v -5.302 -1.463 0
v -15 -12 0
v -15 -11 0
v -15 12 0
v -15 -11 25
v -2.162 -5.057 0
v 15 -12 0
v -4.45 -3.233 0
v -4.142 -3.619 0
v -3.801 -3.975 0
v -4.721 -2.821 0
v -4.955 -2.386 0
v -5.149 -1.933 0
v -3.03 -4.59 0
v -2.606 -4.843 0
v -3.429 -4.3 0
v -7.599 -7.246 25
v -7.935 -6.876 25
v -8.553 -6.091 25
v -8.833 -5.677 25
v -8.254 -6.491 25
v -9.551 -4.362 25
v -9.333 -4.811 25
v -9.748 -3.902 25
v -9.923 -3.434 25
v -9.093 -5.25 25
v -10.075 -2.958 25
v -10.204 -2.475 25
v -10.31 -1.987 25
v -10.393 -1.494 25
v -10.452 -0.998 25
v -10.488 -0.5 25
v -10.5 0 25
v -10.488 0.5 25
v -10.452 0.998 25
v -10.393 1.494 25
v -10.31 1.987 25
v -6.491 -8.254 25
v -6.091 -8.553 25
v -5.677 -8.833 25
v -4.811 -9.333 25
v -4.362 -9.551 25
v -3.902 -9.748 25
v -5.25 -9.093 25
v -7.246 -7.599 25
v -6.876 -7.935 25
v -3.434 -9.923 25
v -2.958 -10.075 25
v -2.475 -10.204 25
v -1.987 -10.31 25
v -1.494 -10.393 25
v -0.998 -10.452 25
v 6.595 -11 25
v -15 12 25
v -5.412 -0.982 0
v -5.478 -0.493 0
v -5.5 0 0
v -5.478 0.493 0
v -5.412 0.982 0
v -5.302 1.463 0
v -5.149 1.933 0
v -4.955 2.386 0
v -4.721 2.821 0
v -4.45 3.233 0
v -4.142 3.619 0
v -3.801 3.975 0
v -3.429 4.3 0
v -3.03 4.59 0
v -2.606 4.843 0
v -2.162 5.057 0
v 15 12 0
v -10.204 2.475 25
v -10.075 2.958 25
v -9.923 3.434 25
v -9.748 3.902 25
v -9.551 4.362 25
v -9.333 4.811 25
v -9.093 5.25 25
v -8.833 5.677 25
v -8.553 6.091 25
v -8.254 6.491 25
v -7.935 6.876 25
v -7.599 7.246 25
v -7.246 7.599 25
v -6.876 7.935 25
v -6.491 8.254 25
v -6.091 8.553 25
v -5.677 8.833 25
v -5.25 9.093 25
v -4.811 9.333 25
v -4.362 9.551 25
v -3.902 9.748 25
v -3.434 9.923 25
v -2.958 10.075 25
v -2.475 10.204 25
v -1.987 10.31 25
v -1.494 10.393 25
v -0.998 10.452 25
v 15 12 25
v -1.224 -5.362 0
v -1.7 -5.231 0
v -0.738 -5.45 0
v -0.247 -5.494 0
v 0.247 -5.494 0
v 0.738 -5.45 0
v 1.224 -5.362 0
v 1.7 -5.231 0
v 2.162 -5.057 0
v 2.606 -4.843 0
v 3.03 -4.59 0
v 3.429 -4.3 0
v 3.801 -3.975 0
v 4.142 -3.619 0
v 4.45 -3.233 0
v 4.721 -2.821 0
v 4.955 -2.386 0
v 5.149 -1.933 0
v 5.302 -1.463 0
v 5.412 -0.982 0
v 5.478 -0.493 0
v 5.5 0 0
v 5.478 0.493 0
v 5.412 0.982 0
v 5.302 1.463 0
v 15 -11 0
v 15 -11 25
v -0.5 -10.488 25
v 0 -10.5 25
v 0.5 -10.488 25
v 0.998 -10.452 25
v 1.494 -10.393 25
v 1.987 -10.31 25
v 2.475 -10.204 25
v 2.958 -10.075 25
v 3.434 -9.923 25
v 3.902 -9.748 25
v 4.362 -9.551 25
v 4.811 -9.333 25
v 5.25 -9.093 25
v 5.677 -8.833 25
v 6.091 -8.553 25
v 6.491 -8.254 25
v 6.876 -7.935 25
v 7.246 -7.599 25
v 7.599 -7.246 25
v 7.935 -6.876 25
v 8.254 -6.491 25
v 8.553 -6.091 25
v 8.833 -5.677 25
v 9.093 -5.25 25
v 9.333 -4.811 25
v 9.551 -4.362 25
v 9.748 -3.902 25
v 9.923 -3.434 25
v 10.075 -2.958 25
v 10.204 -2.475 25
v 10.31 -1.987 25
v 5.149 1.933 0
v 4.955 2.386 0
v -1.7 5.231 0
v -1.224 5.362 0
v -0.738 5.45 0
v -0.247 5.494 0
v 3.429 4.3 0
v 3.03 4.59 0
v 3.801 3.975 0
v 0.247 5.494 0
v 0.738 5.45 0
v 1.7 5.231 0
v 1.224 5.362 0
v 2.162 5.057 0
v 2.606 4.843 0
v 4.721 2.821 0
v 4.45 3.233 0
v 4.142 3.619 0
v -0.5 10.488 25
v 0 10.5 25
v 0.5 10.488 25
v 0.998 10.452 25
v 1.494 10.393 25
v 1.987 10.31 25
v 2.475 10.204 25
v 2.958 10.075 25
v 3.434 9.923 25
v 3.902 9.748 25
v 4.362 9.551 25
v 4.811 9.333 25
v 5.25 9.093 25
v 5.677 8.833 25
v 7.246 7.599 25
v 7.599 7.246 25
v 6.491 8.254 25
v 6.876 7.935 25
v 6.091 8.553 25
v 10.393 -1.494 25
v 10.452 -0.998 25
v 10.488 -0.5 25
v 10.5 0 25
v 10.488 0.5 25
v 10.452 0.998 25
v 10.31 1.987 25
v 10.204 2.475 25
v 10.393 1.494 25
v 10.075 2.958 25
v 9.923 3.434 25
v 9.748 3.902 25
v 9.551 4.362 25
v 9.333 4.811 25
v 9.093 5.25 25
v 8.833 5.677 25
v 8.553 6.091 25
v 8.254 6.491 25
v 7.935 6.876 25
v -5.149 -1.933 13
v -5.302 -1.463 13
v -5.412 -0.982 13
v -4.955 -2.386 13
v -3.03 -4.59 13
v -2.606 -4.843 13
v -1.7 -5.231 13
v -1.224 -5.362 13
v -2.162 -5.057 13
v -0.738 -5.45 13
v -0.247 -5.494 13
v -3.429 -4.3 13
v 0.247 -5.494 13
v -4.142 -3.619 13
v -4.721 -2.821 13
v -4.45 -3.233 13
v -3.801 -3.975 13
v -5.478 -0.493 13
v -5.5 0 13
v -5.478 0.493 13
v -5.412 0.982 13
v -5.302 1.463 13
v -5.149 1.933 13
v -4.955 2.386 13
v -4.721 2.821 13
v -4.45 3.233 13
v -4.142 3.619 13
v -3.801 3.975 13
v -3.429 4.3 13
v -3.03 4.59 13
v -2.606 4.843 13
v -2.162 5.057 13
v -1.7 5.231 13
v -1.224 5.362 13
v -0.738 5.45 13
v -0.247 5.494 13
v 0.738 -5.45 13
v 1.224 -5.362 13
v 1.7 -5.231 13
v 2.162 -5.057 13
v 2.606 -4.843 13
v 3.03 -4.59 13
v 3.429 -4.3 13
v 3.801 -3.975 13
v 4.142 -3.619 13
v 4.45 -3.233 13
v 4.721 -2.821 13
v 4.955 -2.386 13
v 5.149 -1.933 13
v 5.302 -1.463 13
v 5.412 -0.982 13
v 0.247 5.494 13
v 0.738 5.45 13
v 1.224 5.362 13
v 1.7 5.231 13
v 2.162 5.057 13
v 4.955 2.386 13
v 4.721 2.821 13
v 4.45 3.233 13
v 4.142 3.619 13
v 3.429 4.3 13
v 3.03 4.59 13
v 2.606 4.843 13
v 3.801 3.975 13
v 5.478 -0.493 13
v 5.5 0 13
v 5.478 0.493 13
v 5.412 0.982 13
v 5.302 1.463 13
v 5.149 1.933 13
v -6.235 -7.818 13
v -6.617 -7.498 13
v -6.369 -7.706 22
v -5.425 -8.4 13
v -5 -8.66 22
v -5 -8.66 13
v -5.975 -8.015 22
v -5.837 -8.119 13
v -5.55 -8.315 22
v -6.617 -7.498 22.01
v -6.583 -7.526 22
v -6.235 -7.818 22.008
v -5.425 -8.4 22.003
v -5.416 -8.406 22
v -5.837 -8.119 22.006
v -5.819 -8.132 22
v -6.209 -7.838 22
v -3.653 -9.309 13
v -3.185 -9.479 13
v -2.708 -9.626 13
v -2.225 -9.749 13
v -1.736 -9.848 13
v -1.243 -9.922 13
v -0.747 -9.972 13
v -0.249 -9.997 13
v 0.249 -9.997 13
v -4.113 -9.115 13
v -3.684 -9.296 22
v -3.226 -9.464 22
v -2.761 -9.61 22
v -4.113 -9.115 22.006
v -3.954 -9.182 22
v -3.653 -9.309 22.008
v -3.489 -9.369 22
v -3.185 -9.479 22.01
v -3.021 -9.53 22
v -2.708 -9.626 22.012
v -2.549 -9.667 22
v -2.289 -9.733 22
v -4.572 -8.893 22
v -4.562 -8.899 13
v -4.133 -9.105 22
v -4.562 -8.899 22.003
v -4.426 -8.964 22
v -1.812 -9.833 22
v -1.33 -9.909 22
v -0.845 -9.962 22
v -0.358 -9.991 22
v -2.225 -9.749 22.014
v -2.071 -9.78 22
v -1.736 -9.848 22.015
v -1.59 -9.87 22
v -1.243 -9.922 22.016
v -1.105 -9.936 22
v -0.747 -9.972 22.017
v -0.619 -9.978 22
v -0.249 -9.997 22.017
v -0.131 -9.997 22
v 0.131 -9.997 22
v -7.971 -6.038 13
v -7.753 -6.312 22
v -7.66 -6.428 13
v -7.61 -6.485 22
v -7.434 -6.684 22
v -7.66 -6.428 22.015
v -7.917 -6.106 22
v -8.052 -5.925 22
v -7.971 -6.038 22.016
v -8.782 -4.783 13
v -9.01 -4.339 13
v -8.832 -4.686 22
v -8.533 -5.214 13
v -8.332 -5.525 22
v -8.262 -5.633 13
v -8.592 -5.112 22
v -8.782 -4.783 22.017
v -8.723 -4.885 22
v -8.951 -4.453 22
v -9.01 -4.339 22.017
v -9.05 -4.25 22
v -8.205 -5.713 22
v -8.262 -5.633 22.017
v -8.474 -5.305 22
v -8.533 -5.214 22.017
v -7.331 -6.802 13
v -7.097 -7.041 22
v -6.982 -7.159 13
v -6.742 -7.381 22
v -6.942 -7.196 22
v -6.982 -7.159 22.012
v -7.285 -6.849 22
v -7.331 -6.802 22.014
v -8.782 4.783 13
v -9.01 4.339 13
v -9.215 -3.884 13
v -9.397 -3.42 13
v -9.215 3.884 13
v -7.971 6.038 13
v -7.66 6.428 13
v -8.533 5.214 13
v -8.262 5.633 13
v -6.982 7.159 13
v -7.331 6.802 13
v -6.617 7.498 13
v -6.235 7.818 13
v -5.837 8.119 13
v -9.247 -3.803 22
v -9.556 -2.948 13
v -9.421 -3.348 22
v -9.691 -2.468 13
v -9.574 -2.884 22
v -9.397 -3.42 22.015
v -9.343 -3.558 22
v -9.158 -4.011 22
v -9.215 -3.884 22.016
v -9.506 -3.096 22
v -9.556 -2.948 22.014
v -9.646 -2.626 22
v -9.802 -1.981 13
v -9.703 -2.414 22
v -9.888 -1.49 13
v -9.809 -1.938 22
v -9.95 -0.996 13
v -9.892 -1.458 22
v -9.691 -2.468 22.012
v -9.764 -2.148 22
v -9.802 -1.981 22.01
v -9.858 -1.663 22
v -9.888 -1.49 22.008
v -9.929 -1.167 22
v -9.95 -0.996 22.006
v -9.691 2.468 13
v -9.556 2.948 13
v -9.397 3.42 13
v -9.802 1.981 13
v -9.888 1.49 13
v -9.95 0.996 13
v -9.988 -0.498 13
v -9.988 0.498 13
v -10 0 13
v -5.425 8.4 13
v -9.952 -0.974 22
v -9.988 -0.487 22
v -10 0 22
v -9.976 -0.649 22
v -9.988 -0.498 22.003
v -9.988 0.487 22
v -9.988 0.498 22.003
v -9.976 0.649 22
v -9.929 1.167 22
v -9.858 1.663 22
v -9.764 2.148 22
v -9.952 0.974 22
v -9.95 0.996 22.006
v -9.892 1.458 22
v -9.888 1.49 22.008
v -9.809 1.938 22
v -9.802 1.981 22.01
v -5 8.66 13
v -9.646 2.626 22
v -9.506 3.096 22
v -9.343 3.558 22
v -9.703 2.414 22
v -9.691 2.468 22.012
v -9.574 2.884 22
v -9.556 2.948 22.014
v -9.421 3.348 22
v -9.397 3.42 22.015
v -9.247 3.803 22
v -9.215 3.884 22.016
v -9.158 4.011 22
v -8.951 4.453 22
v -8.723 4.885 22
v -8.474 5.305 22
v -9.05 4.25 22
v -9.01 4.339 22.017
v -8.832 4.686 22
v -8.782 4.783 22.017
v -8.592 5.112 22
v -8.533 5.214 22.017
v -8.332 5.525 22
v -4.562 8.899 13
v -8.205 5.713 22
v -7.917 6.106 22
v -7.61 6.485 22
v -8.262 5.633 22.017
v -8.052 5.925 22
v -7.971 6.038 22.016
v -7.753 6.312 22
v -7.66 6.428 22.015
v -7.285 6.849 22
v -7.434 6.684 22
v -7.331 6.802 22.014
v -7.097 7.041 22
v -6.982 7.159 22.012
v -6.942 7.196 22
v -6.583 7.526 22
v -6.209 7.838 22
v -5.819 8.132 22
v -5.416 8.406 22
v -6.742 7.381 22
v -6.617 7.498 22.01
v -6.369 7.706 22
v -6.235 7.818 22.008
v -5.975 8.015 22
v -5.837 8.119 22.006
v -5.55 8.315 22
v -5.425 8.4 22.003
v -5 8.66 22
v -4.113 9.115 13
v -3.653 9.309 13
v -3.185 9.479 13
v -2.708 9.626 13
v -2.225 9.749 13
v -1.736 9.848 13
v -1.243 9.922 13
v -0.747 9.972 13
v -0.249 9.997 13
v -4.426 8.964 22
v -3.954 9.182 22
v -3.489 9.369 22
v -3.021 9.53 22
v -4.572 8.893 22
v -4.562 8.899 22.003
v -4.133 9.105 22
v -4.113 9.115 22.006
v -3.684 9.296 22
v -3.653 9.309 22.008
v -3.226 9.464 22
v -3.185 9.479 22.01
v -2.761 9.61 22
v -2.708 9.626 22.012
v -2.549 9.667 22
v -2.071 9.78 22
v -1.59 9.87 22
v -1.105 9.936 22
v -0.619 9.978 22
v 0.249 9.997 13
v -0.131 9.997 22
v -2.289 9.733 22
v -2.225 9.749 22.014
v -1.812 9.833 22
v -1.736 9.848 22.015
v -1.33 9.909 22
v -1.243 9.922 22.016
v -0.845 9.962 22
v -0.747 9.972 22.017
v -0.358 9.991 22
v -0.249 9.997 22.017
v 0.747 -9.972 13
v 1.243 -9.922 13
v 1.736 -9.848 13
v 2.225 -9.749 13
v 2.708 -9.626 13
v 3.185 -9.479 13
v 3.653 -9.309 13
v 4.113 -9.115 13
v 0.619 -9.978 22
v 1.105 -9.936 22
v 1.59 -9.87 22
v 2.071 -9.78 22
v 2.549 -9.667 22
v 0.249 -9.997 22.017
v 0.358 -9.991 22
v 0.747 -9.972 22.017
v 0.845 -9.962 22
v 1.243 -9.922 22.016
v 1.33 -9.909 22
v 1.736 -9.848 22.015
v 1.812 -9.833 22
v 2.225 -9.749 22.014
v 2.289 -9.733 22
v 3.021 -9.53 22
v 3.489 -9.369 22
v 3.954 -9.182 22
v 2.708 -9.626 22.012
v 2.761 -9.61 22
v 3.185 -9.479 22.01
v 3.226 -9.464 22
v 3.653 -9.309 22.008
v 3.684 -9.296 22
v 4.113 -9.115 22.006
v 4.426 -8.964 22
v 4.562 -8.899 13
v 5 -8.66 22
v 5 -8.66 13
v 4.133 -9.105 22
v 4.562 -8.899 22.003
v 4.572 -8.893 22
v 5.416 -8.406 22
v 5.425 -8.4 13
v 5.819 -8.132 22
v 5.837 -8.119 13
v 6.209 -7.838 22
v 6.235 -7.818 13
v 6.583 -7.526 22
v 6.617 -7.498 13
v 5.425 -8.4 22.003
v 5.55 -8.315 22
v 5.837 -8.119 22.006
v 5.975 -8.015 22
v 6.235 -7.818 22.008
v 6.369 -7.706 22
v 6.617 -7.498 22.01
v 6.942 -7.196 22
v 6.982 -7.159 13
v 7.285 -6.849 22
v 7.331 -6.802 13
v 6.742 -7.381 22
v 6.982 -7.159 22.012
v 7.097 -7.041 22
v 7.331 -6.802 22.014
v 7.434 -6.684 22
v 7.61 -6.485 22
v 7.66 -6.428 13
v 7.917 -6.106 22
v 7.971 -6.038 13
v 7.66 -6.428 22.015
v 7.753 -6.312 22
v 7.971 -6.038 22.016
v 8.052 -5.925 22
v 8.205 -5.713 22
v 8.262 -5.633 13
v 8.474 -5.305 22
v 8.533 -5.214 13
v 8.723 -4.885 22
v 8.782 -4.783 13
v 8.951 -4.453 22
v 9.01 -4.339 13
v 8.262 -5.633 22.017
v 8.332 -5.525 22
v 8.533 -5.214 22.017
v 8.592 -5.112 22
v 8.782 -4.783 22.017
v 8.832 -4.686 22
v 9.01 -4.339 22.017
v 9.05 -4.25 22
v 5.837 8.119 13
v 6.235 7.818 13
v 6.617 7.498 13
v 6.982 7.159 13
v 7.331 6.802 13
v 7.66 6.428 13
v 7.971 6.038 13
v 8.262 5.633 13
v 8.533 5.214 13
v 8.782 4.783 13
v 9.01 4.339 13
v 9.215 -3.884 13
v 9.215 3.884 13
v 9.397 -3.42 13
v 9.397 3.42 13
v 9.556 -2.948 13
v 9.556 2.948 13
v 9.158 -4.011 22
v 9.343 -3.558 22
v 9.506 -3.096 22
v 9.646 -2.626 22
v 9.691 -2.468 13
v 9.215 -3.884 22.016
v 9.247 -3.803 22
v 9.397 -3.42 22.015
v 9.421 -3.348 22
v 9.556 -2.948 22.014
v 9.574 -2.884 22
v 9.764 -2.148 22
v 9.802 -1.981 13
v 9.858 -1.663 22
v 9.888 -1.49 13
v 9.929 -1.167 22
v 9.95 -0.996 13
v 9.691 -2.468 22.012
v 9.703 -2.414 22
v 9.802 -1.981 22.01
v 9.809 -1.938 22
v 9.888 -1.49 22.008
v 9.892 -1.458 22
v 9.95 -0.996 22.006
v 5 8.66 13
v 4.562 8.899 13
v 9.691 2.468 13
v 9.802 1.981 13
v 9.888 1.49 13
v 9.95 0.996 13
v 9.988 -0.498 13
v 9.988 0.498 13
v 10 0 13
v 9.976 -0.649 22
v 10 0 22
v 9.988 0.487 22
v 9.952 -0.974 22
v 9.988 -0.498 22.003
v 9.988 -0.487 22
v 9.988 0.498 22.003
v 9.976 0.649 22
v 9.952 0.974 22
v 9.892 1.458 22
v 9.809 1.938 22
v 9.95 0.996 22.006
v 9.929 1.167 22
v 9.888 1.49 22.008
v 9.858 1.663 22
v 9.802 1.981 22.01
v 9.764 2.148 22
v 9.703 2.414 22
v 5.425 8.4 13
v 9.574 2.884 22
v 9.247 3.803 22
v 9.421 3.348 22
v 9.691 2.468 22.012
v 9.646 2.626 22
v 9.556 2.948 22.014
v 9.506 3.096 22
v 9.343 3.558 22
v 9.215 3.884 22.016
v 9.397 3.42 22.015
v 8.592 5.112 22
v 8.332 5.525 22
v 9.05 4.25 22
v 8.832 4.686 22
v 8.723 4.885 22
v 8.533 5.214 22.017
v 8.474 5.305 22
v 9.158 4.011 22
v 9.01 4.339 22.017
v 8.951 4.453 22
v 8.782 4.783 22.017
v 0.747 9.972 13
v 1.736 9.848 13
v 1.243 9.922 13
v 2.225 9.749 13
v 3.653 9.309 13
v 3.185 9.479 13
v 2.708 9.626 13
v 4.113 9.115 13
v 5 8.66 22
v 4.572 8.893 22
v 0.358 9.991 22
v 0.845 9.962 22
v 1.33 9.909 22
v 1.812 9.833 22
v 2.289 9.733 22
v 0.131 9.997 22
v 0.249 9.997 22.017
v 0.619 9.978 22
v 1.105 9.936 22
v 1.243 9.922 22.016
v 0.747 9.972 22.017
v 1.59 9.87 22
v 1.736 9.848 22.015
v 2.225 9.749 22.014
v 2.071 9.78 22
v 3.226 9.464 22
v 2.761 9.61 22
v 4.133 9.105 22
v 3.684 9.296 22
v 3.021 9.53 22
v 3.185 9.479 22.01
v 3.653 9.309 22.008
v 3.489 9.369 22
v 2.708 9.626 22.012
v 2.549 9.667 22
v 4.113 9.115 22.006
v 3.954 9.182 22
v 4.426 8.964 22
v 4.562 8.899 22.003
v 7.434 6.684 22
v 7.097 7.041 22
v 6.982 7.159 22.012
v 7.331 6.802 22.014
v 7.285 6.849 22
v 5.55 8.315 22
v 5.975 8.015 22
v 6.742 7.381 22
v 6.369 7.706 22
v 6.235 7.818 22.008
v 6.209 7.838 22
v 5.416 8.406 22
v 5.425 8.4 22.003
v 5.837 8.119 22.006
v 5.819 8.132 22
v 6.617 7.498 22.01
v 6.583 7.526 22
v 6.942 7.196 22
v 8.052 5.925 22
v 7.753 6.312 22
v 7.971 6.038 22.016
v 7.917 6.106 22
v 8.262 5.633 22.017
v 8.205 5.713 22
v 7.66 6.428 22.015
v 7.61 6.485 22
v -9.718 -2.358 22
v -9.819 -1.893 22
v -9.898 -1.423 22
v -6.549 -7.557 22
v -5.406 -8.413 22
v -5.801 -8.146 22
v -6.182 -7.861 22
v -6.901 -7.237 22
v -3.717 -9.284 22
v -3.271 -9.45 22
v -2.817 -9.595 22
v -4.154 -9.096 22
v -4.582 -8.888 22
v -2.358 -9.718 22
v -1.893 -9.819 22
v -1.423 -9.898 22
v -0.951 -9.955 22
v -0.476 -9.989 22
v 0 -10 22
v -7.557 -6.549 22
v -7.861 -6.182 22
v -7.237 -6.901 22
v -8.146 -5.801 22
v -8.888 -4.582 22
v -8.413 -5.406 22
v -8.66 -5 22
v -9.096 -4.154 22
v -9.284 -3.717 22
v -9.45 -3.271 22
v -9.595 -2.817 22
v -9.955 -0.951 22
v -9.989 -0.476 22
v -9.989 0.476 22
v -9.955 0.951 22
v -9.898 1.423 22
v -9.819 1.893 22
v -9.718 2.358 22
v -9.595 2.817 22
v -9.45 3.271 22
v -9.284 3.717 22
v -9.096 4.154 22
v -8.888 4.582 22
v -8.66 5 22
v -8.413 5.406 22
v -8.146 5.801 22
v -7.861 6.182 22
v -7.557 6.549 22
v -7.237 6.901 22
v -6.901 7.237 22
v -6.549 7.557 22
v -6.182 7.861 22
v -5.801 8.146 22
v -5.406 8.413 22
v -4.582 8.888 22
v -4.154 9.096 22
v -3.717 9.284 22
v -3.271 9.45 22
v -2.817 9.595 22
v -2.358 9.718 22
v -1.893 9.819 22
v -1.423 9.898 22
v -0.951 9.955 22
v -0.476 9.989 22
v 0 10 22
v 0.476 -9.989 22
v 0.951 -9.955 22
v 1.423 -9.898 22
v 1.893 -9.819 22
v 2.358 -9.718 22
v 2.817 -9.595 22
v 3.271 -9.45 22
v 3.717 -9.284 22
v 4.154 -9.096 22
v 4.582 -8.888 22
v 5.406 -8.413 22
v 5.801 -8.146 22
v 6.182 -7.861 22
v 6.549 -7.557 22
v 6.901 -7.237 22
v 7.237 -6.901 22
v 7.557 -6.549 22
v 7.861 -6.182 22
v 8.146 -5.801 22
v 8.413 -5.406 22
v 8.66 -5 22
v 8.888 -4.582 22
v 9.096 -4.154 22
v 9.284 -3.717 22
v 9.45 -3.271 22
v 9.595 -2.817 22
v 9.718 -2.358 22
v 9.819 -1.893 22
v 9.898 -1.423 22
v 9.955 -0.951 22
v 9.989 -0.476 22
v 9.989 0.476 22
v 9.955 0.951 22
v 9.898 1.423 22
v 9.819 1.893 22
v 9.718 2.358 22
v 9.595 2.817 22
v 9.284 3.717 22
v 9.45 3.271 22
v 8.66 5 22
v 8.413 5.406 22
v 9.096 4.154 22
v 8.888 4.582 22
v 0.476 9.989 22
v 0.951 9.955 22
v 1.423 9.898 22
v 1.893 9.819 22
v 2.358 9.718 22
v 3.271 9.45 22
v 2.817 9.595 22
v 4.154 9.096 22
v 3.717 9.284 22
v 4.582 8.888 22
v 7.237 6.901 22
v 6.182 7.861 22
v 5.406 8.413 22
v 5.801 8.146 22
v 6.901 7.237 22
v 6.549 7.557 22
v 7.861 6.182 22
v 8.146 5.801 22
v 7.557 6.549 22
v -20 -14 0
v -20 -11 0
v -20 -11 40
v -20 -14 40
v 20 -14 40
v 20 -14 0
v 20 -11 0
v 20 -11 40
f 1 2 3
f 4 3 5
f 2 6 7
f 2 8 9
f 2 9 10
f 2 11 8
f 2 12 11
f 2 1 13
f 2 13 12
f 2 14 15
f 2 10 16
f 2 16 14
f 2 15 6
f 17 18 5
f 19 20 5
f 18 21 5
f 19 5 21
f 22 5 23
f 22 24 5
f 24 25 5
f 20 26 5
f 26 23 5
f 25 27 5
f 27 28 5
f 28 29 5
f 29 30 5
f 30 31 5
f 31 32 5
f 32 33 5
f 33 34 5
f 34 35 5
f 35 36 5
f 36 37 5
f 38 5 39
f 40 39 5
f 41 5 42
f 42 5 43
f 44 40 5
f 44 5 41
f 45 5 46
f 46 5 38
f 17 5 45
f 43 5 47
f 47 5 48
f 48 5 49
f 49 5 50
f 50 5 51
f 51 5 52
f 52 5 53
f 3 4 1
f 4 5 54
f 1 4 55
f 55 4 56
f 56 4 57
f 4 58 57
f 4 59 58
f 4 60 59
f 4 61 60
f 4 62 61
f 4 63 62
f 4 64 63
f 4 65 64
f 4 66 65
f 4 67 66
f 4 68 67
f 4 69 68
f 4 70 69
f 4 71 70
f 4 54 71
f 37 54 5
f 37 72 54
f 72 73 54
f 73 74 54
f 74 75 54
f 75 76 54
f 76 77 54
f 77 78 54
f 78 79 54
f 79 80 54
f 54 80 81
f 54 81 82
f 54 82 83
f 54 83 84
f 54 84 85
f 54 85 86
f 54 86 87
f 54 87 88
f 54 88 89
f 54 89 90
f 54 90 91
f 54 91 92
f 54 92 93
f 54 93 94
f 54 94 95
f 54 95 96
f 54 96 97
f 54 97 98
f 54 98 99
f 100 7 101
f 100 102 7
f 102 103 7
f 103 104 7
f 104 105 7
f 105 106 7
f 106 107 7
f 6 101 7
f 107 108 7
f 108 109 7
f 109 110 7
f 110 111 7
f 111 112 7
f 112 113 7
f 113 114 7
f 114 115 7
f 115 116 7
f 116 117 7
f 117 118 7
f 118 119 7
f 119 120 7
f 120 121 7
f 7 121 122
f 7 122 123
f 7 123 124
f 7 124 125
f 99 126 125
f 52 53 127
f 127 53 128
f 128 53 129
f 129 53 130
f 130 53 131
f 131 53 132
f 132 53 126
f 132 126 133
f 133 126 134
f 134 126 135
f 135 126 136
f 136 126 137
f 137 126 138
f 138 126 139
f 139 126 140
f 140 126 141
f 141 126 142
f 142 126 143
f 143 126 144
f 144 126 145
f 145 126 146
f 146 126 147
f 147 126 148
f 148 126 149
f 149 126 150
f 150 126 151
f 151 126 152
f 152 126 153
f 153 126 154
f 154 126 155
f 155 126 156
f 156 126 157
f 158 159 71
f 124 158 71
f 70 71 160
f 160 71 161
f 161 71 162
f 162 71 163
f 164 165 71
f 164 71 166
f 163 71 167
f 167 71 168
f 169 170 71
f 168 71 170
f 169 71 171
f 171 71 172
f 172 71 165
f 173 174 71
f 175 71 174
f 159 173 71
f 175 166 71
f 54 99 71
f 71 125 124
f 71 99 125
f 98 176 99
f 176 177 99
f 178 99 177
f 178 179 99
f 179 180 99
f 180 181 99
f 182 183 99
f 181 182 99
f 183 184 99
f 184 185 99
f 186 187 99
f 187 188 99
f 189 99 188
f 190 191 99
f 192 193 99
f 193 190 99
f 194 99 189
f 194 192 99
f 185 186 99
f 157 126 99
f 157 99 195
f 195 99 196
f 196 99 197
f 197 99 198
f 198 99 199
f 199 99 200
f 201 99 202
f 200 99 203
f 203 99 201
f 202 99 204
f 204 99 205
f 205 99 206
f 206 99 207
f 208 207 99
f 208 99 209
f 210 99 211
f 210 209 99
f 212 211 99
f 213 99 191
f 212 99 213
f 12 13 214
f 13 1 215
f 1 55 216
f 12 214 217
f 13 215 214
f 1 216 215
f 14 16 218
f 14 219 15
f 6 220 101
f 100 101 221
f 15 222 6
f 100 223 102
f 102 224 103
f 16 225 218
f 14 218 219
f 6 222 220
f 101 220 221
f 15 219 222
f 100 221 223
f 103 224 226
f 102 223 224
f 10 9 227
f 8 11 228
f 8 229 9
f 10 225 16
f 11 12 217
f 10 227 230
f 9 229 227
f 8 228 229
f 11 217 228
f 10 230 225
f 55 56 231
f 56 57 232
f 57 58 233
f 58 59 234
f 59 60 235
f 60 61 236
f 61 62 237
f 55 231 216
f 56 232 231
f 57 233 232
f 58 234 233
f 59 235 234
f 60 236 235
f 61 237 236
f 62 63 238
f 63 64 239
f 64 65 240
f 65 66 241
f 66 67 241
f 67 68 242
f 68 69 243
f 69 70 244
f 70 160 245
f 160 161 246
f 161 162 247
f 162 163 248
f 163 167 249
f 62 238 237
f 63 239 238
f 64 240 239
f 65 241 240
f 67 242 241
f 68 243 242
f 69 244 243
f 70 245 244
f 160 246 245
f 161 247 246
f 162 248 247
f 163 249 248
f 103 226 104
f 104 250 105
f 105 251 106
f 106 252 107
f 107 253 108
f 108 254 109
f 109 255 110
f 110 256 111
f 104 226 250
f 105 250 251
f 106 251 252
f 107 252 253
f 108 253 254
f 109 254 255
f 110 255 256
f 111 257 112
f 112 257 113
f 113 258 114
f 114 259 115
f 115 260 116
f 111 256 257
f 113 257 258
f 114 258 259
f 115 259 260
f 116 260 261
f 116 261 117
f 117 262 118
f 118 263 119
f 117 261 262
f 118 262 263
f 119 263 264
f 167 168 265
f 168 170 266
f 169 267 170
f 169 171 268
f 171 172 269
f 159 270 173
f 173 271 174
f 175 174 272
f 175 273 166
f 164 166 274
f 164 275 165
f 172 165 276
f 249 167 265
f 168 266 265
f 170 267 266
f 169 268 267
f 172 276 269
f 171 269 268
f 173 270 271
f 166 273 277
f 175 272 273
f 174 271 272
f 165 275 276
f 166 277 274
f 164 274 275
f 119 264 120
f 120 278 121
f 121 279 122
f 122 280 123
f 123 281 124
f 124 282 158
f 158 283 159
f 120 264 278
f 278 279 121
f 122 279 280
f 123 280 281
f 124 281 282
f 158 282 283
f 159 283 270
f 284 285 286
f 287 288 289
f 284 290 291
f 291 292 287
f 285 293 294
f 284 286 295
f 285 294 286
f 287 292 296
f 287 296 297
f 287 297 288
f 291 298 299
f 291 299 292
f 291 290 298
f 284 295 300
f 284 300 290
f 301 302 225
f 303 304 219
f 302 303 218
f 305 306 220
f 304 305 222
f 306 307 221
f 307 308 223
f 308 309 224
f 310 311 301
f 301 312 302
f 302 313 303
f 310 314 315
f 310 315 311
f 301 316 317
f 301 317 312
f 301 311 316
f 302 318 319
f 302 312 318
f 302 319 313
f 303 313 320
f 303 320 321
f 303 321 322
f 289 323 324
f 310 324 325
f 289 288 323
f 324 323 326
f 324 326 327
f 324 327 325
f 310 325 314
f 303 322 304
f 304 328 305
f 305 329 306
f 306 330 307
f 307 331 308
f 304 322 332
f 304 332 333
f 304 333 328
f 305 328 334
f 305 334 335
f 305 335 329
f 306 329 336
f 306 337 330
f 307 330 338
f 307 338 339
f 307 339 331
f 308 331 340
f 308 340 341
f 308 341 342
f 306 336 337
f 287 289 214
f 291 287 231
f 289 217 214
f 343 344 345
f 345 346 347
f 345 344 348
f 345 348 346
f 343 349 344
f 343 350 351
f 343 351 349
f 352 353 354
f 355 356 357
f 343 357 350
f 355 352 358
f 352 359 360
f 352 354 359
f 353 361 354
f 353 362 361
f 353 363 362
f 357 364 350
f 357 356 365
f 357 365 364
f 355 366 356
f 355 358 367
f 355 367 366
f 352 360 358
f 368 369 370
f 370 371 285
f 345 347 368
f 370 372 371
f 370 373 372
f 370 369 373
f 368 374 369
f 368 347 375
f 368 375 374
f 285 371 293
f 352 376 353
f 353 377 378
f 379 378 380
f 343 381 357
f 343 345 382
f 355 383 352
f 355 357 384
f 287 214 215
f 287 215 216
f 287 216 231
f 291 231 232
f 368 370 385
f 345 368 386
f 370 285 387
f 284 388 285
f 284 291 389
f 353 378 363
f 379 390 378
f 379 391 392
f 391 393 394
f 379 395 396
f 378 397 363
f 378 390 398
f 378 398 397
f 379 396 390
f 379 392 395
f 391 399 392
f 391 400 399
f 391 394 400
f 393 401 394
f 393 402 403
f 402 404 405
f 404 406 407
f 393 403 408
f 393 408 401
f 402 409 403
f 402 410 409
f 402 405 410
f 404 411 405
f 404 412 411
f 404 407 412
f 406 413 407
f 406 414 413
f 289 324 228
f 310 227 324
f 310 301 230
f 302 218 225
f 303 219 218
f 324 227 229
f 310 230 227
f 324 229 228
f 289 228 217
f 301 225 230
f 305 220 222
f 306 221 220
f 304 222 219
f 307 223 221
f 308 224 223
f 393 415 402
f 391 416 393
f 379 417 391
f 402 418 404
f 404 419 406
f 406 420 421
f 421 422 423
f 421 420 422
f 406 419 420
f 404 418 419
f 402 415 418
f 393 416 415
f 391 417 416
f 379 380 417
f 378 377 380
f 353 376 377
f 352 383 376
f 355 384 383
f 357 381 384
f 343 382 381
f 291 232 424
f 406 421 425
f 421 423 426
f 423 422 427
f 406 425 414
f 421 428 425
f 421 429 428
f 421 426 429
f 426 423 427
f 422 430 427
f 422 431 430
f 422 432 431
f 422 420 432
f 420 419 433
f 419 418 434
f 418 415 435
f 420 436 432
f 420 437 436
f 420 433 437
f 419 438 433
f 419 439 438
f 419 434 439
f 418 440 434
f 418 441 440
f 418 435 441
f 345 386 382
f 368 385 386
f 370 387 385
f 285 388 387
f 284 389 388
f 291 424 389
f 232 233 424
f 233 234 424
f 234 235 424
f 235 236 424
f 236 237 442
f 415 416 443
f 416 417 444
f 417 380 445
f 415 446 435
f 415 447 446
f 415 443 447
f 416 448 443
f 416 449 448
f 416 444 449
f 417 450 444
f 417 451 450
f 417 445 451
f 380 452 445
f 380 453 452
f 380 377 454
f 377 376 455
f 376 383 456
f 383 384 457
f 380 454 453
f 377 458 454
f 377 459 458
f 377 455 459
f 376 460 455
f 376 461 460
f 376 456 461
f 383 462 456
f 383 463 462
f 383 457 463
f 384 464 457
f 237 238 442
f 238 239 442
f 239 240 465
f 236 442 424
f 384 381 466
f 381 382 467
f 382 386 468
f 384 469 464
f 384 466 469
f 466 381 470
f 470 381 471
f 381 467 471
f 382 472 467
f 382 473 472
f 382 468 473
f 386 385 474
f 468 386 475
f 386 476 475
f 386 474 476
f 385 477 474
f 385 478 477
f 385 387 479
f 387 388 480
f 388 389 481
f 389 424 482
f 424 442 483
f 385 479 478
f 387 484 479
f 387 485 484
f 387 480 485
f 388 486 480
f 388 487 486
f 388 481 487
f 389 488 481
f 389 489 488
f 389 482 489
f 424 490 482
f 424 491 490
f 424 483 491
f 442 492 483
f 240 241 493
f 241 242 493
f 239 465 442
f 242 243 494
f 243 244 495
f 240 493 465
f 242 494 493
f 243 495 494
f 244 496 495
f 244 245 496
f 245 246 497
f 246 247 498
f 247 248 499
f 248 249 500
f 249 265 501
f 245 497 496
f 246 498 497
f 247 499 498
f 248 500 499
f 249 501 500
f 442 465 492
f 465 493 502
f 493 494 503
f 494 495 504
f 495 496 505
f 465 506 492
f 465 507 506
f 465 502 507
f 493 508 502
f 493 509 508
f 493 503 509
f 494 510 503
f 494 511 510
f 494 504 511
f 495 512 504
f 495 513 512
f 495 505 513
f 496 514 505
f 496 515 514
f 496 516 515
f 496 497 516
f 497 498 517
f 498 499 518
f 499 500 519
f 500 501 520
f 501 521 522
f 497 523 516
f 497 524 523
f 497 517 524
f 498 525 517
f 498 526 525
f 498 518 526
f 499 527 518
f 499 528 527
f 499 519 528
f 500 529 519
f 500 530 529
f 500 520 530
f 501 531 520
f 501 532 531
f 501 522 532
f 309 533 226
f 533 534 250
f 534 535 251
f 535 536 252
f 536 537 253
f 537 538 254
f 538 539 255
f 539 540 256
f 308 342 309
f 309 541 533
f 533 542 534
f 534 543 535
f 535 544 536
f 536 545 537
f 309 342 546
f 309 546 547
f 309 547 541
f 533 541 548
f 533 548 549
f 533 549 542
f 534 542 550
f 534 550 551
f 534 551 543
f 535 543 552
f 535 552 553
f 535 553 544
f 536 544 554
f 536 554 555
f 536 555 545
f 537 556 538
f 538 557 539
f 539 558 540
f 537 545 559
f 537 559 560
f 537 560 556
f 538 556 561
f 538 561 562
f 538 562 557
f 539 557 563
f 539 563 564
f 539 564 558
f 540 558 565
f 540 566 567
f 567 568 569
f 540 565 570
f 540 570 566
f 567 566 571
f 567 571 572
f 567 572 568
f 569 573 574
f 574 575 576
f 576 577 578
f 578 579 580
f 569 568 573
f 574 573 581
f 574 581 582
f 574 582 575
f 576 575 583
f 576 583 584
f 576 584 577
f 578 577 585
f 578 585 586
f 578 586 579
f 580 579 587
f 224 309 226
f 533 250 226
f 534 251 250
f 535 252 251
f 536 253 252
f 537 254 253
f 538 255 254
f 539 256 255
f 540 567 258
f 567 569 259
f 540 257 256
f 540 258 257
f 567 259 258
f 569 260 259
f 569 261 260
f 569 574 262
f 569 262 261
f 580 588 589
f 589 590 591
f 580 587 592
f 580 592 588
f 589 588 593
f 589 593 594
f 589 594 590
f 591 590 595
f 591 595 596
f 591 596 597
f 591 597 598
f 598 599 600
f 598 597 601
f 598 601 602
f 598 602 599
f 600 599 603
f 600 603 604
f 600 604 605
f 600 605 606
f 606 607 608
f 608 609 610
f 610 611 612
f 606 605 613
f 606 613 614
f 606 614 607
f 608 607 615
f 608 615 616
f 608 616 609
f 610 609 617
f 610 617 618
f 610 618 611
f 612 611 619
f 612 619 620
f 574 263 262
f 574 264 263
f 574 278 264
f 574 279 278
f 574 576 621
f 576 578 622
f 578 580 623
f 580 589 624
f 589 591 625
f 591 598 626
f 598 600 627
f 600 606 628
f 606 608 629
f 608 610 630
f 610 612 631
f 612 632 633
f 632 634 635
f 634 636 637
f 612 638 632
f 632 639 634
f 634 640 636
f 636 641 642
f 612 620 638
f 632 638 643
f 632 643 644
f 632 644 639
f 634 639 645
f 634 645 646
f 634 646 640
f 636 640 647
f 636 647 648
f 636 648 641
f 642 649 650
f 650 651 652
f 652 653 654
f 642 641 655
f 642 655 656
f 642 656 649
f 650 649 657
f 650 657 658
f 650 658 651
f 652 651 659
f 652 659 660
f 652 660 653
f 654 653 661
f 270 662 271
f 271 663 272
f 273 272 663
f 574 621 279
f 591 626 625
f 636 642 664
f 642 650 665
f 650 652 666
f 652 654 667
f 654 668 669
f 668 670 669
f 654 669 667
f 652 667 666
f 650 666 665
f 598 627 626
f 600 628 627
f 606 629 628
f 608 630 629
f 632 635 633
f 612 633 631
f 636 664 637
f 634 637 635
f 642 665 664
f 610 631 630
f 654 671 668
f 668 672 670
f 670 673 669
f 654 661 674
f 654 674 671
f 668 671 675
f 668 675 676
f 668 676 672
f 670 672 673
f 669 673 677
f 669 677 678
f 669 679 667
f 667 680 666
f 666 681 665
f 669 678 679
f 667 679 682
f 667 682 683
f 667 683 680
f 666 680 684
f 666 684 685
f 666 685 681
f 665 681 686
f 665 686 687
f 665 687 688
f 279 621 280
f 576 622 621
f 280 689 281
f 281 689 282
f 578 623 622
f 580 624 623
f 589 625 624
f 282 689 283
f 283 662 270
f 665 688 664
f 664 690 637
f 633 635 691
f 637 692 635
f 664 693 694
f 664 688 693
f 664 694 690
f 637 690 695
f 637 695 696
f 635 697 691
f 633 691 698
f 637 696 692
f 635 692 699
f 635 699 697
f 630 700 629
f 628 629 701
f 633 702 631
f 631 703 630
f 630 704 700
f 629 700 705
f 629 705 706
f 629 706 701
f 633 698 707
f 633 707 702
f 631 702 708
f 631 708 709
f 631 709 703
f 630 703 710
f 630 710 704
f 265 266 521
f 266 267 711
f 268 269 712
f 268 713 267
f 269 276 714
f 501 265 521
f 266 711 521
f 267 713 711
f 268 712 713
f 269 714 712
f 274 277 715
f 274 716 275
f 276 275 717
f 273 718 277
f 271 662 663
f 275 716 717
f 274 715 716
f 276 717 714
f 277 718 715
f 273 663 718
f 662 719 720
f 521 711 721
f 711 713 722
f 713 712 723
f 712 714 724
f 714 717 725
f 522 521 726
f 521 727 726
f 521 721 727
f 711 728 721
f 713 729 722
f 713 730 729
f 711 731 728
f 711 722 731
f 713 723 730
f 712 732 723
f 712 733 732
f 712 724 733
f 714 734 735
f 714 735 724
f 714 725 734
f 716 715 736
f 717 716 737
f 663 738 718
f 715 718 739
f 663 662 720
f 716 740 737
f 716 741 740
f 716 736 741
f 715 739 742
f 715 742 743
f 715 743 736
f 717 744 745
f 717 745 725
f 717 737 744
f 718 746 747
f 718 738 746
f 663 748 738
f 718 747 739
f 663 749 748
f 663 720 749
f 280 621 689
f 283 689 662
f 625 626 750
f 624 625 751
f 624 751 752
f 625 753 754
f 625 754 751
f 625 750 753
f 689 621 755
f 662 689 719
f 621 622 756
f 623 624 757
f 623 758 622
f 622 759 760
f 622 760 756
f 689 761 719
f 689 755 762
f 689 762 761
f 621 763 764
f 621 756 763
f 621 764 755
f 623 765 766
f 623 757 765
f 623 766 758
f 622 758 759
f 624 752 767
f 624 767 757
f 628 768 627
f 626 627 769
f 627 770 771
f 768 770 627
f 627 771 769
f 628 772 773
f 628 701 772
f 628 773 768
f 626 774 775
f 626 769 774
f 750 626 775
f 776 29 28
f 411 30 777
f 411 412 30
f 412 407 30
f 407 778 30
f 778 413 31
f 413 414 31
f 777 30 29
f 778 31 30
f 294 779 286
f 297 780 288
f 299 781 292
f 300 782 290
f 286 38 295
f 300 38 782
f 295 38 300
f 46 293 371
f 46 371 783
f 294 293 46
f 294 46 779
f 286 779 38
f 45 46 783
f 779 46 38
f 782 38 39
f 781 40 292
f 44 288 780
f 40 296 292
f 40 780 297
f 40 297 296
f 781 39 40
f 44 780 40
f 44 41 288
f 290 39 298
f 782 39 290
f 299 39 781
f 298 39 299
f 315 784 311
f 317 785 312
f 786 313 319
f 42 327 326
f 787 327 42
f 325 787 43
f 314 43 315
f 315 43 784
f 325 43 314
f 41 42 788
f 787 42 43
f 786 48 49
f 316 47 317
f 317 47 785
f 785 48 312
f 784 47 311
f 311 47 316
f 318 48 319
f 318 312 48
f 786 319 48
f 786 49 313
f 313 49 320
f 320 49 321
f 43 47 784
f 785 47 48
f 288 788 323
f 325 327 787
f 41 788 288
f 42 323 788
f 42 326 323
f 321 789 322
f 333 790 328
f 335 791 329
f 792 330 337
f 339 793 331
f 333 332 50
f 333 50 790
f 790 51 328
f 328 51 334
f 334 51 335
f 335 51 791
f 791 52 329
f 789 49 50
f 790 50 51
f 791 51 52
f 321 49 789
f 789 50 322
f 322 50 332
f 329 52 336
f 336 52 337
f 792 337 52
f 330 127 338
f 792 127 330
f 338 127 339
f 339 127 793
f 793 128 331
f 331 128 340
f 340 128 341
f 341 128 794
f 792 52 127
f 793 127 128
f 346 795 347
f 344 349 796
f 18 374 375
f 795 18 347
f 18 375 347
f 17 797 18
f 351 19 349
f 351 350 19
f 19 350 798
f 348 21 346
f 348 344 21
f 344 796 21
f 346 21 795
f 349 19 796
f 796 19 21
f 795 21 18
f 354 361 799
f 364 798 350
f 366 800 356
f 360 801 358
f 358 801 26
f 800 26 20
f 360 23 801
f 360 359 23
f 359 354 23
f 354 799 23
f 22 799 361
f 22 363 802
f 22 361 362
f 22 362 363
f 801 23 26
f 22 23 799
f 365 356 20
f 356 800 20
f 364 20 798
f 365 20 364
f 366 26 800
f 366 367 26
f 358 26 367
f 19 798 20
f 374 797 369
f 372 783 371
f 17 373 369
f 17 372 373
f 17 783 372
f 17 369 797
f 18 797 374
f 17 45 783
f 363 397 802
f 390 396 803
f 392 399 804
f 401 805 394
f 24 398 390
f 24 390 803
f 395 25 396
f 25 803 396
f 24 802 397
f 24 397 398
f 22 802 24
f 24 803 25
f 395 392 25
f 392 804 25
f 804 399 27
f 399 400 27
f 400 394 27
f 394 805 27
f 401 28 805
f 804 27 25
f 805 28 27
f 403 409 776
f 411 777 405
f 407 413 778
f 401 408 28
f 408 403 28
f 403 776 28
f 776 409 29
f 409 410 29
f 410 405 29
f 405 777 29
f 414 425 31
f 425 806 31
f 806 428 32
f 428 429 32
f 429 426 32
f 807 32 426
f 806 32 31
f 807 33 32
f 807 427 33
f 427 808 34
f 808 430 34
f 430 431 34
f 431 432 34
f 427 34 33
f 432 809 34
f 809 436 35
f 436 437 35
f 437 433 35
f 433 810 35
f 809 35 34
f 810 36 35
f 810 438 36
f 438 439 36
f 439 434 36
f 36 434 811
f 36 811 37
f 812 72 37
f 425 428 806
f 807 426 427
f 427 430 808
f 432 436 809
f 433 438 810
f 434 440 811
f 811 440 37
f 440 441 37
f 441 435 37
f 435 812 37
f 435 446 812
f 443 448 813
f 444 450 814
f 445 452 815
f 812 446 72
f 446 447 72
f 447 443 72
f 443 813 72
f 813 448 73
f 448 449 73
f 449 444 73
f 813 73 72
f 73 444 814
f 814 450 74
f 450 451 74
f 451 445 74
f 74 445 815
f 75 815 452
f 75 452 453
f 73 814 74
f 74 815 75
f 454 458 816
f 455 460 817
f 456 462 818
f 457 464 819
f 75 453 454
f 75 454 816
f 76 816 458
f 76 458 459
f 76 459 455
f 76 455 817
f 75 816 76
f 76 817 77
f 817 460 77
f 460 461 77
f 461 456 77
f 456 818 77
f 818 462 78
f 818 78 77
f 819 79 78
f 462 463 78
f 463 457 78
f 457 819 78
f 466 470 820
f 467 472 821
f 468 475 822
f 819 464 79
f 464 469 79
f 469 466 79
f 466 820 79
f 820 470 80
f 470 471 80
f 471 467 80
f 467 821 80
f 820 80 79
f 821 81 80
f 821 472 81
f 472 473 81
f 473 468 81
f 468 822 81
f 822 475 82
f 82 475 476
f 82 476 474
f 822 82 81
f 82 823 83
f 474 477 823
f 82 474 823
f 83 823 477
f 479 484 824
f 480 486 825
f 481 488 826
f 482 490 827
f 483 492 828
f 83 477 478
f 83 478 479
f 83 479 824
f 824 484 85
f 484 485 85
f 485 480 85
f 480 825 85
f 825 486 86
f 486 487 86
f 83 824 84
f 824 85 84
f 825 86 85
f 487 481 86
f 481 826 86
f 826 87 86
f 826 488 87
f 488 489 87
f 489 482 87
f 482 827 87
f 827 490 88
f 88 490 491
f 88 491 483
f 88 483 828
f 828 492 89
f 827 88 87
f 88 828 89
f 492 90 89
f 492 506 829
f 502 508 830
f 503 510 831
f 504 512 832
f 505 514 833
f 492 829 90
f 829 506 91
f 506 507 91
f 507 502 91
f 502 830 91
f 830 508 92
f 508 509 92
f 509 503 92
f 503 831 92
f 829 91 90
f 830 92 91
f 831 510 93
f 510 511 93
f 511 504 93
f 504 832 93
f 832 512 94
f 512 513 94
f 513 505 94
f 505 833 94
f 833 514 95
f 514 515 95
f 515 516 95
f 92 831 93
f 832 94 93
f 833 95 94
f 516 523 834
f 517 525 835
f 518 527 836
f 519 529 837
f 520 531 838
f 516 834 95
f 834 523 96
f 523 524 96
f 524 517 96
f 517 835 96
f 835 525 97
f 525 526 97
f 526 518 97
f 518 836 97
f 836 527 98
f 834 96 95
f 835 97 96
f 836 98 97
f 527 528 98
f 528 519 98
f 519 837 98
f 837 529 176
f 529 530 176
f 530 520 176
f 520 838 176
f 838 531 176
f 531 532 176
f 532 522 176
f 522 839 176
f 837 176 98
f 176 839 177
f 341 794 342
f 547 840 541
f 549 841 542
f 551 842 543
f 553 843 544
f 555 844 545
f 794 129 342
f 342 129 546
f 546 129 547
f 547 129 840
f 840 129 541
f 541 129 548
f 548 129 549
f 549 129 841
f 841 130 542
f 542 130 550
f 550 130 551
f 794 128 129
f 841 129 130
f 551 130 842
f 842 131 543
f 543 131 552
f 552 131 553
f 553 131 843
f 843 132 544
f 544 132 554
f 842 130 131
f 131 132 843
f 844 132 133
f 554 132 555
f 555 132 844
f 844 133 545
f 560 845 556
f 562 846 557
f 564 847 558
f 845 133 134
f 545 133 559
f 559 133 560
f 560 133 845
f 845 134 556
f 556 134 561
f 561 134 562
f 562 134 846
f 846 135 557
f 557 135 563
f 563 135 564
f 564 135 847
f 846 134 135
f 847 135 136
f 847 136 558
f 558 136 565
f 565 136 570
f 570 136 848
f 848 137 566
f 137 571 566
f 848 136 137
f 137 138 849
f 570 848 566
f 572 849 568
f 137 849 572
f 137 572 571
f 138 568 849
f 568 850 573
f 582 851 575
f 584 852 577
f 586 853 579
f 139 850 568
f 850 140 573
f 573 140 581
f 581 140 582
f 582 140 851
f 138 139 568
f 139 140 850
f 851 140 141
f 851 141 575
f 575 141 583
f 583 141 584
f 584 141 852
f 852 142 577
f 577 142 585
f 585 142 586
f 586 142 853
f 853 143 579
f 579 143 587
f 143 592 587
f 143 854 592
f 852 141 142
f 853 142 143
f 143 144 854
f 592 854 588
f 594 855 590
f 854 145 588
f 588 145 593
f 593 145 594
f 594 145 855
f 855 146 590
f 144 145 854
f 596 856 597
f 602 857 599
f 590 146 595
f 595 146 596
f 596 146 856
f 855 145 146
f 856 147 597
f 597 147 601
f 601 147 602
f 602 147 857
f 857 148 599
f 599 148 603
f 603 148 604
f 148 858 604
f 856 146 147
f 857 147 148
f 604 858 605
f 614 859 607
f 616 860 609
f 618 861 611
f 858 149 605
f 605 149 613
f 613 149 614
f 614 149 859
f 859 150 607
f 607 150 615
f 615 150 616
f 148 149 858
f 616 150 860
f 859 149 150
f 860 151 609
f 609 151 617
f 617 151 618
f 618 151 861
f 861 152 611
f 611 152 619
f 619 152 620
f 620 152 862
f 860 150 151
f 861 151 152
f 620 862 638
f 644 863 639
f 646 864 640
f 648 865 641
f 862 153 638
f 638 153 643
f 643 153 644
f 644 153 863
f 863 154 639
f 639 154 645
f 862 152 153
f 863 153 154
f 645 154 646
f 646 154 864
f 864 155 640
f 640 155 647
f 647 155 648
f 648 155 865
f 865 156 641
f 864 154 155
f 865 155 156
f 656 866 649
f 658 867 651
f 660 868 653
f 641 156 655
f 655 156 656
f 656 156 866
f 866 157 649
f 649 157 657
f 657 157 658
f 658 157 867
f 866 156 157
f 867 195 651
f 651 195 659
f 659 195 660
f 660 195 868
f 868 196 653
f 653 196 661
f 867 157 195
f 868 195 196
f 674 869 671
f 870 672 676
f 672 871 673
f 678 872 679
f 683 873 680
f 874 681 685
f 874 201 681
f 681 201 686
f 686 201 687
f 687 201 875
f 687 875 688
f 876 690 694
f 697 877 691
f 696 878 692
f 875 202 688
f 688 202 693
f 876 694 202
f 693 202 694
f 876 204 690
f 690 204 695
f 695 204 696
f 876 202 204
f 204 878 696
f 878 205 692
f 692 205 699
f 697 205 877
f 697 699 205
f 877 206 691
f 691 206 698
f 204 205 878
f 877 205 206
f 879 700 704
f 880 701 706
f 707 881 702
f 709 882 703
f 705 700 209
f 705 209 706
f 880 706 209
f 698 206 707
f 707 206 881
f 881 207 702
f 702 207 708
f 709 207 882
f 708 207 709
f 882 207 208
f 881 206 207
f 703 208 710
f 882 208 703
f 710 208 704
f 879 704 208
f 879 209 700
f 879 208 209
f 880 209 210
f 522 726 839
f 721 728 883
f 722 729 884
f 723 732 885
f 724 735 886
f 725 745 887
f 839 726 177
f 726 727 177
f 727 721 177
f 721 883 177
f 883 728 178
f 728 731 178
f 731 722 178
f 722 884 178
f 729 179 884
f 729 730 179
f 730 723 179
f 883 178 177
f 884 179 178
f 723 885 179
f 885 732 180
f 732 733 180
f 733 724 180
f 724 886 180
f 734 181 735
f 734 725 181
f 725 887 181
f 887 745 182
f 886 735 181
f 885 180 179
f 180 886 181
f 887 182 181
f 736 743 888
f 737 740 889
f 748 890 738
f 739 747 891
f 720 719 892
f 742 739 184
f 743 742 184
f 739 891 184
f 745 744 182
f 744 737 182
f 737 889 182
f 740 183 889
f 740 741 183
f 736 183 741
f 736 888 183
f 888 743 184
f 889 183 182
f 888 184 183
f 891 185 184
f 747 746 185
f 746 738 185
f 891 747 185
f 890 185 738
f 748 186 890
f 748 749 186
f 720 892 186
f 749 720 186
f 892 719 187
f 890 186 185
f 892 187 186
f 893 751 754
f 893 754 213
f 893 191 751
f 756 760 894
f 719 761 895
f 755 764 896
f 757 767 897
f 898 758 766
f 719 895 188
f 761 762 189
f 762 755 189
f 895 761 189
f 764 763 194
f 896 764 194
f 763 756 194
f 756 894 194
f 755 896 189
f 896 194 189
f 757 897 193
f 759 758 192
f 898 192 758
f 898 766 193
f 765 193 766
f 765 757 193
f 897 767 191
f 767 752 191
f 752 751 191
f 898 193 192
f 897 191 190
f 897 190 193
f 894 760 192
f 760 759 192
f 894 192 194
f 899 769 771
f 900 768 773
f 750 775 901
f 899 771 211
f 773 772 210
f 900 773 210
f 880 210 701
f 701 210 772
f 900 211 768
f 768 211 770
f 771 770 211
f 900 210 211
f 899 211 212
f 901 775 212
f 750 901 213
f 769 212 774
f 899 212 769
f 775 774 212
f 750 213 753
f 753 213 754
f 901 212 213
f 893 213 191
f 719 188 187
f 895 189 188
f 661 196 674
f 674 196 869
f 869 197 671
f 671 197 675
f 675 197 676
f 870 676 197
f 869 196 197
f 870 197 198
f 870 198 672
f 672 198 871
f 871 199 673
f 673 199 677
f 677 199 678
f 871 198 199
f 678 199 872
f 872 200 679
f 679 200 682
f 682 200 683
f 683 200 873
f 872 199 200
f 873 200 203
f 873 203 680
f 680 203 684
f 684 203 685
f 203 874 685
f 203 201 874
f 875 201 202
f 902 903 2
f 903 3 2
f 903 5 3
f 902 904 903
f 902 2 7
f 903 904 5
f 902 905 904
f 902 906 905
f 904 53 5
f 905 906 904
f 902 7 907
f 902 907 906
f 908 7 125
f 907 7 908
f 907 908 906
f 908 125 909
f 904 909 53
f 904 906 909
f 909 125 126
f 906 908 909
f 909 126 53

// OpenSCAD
$fa = 1;
$fs = 0.5;

difference() {
  //outer rectangle
  translate([-15,-12,0]){
  cube(size = [30,24,25], center = false);
  }

  //lower barrel
  color("red")
  cylinder(h = 13, d = 11, center = false);

  //upper barrel
  translate([0,0,13]){
  color("blue")
  cylinder(h = 19, d = 20, center = false);
  }

  //chamfer
  translate([0,0,22]){
  color("purple")
  cylinder(h = 3, d1 =20, d2=21);
  }
}

translate([-20,-14,0]){
color("green")
cube(size = [40,3,40], center = false);
}
